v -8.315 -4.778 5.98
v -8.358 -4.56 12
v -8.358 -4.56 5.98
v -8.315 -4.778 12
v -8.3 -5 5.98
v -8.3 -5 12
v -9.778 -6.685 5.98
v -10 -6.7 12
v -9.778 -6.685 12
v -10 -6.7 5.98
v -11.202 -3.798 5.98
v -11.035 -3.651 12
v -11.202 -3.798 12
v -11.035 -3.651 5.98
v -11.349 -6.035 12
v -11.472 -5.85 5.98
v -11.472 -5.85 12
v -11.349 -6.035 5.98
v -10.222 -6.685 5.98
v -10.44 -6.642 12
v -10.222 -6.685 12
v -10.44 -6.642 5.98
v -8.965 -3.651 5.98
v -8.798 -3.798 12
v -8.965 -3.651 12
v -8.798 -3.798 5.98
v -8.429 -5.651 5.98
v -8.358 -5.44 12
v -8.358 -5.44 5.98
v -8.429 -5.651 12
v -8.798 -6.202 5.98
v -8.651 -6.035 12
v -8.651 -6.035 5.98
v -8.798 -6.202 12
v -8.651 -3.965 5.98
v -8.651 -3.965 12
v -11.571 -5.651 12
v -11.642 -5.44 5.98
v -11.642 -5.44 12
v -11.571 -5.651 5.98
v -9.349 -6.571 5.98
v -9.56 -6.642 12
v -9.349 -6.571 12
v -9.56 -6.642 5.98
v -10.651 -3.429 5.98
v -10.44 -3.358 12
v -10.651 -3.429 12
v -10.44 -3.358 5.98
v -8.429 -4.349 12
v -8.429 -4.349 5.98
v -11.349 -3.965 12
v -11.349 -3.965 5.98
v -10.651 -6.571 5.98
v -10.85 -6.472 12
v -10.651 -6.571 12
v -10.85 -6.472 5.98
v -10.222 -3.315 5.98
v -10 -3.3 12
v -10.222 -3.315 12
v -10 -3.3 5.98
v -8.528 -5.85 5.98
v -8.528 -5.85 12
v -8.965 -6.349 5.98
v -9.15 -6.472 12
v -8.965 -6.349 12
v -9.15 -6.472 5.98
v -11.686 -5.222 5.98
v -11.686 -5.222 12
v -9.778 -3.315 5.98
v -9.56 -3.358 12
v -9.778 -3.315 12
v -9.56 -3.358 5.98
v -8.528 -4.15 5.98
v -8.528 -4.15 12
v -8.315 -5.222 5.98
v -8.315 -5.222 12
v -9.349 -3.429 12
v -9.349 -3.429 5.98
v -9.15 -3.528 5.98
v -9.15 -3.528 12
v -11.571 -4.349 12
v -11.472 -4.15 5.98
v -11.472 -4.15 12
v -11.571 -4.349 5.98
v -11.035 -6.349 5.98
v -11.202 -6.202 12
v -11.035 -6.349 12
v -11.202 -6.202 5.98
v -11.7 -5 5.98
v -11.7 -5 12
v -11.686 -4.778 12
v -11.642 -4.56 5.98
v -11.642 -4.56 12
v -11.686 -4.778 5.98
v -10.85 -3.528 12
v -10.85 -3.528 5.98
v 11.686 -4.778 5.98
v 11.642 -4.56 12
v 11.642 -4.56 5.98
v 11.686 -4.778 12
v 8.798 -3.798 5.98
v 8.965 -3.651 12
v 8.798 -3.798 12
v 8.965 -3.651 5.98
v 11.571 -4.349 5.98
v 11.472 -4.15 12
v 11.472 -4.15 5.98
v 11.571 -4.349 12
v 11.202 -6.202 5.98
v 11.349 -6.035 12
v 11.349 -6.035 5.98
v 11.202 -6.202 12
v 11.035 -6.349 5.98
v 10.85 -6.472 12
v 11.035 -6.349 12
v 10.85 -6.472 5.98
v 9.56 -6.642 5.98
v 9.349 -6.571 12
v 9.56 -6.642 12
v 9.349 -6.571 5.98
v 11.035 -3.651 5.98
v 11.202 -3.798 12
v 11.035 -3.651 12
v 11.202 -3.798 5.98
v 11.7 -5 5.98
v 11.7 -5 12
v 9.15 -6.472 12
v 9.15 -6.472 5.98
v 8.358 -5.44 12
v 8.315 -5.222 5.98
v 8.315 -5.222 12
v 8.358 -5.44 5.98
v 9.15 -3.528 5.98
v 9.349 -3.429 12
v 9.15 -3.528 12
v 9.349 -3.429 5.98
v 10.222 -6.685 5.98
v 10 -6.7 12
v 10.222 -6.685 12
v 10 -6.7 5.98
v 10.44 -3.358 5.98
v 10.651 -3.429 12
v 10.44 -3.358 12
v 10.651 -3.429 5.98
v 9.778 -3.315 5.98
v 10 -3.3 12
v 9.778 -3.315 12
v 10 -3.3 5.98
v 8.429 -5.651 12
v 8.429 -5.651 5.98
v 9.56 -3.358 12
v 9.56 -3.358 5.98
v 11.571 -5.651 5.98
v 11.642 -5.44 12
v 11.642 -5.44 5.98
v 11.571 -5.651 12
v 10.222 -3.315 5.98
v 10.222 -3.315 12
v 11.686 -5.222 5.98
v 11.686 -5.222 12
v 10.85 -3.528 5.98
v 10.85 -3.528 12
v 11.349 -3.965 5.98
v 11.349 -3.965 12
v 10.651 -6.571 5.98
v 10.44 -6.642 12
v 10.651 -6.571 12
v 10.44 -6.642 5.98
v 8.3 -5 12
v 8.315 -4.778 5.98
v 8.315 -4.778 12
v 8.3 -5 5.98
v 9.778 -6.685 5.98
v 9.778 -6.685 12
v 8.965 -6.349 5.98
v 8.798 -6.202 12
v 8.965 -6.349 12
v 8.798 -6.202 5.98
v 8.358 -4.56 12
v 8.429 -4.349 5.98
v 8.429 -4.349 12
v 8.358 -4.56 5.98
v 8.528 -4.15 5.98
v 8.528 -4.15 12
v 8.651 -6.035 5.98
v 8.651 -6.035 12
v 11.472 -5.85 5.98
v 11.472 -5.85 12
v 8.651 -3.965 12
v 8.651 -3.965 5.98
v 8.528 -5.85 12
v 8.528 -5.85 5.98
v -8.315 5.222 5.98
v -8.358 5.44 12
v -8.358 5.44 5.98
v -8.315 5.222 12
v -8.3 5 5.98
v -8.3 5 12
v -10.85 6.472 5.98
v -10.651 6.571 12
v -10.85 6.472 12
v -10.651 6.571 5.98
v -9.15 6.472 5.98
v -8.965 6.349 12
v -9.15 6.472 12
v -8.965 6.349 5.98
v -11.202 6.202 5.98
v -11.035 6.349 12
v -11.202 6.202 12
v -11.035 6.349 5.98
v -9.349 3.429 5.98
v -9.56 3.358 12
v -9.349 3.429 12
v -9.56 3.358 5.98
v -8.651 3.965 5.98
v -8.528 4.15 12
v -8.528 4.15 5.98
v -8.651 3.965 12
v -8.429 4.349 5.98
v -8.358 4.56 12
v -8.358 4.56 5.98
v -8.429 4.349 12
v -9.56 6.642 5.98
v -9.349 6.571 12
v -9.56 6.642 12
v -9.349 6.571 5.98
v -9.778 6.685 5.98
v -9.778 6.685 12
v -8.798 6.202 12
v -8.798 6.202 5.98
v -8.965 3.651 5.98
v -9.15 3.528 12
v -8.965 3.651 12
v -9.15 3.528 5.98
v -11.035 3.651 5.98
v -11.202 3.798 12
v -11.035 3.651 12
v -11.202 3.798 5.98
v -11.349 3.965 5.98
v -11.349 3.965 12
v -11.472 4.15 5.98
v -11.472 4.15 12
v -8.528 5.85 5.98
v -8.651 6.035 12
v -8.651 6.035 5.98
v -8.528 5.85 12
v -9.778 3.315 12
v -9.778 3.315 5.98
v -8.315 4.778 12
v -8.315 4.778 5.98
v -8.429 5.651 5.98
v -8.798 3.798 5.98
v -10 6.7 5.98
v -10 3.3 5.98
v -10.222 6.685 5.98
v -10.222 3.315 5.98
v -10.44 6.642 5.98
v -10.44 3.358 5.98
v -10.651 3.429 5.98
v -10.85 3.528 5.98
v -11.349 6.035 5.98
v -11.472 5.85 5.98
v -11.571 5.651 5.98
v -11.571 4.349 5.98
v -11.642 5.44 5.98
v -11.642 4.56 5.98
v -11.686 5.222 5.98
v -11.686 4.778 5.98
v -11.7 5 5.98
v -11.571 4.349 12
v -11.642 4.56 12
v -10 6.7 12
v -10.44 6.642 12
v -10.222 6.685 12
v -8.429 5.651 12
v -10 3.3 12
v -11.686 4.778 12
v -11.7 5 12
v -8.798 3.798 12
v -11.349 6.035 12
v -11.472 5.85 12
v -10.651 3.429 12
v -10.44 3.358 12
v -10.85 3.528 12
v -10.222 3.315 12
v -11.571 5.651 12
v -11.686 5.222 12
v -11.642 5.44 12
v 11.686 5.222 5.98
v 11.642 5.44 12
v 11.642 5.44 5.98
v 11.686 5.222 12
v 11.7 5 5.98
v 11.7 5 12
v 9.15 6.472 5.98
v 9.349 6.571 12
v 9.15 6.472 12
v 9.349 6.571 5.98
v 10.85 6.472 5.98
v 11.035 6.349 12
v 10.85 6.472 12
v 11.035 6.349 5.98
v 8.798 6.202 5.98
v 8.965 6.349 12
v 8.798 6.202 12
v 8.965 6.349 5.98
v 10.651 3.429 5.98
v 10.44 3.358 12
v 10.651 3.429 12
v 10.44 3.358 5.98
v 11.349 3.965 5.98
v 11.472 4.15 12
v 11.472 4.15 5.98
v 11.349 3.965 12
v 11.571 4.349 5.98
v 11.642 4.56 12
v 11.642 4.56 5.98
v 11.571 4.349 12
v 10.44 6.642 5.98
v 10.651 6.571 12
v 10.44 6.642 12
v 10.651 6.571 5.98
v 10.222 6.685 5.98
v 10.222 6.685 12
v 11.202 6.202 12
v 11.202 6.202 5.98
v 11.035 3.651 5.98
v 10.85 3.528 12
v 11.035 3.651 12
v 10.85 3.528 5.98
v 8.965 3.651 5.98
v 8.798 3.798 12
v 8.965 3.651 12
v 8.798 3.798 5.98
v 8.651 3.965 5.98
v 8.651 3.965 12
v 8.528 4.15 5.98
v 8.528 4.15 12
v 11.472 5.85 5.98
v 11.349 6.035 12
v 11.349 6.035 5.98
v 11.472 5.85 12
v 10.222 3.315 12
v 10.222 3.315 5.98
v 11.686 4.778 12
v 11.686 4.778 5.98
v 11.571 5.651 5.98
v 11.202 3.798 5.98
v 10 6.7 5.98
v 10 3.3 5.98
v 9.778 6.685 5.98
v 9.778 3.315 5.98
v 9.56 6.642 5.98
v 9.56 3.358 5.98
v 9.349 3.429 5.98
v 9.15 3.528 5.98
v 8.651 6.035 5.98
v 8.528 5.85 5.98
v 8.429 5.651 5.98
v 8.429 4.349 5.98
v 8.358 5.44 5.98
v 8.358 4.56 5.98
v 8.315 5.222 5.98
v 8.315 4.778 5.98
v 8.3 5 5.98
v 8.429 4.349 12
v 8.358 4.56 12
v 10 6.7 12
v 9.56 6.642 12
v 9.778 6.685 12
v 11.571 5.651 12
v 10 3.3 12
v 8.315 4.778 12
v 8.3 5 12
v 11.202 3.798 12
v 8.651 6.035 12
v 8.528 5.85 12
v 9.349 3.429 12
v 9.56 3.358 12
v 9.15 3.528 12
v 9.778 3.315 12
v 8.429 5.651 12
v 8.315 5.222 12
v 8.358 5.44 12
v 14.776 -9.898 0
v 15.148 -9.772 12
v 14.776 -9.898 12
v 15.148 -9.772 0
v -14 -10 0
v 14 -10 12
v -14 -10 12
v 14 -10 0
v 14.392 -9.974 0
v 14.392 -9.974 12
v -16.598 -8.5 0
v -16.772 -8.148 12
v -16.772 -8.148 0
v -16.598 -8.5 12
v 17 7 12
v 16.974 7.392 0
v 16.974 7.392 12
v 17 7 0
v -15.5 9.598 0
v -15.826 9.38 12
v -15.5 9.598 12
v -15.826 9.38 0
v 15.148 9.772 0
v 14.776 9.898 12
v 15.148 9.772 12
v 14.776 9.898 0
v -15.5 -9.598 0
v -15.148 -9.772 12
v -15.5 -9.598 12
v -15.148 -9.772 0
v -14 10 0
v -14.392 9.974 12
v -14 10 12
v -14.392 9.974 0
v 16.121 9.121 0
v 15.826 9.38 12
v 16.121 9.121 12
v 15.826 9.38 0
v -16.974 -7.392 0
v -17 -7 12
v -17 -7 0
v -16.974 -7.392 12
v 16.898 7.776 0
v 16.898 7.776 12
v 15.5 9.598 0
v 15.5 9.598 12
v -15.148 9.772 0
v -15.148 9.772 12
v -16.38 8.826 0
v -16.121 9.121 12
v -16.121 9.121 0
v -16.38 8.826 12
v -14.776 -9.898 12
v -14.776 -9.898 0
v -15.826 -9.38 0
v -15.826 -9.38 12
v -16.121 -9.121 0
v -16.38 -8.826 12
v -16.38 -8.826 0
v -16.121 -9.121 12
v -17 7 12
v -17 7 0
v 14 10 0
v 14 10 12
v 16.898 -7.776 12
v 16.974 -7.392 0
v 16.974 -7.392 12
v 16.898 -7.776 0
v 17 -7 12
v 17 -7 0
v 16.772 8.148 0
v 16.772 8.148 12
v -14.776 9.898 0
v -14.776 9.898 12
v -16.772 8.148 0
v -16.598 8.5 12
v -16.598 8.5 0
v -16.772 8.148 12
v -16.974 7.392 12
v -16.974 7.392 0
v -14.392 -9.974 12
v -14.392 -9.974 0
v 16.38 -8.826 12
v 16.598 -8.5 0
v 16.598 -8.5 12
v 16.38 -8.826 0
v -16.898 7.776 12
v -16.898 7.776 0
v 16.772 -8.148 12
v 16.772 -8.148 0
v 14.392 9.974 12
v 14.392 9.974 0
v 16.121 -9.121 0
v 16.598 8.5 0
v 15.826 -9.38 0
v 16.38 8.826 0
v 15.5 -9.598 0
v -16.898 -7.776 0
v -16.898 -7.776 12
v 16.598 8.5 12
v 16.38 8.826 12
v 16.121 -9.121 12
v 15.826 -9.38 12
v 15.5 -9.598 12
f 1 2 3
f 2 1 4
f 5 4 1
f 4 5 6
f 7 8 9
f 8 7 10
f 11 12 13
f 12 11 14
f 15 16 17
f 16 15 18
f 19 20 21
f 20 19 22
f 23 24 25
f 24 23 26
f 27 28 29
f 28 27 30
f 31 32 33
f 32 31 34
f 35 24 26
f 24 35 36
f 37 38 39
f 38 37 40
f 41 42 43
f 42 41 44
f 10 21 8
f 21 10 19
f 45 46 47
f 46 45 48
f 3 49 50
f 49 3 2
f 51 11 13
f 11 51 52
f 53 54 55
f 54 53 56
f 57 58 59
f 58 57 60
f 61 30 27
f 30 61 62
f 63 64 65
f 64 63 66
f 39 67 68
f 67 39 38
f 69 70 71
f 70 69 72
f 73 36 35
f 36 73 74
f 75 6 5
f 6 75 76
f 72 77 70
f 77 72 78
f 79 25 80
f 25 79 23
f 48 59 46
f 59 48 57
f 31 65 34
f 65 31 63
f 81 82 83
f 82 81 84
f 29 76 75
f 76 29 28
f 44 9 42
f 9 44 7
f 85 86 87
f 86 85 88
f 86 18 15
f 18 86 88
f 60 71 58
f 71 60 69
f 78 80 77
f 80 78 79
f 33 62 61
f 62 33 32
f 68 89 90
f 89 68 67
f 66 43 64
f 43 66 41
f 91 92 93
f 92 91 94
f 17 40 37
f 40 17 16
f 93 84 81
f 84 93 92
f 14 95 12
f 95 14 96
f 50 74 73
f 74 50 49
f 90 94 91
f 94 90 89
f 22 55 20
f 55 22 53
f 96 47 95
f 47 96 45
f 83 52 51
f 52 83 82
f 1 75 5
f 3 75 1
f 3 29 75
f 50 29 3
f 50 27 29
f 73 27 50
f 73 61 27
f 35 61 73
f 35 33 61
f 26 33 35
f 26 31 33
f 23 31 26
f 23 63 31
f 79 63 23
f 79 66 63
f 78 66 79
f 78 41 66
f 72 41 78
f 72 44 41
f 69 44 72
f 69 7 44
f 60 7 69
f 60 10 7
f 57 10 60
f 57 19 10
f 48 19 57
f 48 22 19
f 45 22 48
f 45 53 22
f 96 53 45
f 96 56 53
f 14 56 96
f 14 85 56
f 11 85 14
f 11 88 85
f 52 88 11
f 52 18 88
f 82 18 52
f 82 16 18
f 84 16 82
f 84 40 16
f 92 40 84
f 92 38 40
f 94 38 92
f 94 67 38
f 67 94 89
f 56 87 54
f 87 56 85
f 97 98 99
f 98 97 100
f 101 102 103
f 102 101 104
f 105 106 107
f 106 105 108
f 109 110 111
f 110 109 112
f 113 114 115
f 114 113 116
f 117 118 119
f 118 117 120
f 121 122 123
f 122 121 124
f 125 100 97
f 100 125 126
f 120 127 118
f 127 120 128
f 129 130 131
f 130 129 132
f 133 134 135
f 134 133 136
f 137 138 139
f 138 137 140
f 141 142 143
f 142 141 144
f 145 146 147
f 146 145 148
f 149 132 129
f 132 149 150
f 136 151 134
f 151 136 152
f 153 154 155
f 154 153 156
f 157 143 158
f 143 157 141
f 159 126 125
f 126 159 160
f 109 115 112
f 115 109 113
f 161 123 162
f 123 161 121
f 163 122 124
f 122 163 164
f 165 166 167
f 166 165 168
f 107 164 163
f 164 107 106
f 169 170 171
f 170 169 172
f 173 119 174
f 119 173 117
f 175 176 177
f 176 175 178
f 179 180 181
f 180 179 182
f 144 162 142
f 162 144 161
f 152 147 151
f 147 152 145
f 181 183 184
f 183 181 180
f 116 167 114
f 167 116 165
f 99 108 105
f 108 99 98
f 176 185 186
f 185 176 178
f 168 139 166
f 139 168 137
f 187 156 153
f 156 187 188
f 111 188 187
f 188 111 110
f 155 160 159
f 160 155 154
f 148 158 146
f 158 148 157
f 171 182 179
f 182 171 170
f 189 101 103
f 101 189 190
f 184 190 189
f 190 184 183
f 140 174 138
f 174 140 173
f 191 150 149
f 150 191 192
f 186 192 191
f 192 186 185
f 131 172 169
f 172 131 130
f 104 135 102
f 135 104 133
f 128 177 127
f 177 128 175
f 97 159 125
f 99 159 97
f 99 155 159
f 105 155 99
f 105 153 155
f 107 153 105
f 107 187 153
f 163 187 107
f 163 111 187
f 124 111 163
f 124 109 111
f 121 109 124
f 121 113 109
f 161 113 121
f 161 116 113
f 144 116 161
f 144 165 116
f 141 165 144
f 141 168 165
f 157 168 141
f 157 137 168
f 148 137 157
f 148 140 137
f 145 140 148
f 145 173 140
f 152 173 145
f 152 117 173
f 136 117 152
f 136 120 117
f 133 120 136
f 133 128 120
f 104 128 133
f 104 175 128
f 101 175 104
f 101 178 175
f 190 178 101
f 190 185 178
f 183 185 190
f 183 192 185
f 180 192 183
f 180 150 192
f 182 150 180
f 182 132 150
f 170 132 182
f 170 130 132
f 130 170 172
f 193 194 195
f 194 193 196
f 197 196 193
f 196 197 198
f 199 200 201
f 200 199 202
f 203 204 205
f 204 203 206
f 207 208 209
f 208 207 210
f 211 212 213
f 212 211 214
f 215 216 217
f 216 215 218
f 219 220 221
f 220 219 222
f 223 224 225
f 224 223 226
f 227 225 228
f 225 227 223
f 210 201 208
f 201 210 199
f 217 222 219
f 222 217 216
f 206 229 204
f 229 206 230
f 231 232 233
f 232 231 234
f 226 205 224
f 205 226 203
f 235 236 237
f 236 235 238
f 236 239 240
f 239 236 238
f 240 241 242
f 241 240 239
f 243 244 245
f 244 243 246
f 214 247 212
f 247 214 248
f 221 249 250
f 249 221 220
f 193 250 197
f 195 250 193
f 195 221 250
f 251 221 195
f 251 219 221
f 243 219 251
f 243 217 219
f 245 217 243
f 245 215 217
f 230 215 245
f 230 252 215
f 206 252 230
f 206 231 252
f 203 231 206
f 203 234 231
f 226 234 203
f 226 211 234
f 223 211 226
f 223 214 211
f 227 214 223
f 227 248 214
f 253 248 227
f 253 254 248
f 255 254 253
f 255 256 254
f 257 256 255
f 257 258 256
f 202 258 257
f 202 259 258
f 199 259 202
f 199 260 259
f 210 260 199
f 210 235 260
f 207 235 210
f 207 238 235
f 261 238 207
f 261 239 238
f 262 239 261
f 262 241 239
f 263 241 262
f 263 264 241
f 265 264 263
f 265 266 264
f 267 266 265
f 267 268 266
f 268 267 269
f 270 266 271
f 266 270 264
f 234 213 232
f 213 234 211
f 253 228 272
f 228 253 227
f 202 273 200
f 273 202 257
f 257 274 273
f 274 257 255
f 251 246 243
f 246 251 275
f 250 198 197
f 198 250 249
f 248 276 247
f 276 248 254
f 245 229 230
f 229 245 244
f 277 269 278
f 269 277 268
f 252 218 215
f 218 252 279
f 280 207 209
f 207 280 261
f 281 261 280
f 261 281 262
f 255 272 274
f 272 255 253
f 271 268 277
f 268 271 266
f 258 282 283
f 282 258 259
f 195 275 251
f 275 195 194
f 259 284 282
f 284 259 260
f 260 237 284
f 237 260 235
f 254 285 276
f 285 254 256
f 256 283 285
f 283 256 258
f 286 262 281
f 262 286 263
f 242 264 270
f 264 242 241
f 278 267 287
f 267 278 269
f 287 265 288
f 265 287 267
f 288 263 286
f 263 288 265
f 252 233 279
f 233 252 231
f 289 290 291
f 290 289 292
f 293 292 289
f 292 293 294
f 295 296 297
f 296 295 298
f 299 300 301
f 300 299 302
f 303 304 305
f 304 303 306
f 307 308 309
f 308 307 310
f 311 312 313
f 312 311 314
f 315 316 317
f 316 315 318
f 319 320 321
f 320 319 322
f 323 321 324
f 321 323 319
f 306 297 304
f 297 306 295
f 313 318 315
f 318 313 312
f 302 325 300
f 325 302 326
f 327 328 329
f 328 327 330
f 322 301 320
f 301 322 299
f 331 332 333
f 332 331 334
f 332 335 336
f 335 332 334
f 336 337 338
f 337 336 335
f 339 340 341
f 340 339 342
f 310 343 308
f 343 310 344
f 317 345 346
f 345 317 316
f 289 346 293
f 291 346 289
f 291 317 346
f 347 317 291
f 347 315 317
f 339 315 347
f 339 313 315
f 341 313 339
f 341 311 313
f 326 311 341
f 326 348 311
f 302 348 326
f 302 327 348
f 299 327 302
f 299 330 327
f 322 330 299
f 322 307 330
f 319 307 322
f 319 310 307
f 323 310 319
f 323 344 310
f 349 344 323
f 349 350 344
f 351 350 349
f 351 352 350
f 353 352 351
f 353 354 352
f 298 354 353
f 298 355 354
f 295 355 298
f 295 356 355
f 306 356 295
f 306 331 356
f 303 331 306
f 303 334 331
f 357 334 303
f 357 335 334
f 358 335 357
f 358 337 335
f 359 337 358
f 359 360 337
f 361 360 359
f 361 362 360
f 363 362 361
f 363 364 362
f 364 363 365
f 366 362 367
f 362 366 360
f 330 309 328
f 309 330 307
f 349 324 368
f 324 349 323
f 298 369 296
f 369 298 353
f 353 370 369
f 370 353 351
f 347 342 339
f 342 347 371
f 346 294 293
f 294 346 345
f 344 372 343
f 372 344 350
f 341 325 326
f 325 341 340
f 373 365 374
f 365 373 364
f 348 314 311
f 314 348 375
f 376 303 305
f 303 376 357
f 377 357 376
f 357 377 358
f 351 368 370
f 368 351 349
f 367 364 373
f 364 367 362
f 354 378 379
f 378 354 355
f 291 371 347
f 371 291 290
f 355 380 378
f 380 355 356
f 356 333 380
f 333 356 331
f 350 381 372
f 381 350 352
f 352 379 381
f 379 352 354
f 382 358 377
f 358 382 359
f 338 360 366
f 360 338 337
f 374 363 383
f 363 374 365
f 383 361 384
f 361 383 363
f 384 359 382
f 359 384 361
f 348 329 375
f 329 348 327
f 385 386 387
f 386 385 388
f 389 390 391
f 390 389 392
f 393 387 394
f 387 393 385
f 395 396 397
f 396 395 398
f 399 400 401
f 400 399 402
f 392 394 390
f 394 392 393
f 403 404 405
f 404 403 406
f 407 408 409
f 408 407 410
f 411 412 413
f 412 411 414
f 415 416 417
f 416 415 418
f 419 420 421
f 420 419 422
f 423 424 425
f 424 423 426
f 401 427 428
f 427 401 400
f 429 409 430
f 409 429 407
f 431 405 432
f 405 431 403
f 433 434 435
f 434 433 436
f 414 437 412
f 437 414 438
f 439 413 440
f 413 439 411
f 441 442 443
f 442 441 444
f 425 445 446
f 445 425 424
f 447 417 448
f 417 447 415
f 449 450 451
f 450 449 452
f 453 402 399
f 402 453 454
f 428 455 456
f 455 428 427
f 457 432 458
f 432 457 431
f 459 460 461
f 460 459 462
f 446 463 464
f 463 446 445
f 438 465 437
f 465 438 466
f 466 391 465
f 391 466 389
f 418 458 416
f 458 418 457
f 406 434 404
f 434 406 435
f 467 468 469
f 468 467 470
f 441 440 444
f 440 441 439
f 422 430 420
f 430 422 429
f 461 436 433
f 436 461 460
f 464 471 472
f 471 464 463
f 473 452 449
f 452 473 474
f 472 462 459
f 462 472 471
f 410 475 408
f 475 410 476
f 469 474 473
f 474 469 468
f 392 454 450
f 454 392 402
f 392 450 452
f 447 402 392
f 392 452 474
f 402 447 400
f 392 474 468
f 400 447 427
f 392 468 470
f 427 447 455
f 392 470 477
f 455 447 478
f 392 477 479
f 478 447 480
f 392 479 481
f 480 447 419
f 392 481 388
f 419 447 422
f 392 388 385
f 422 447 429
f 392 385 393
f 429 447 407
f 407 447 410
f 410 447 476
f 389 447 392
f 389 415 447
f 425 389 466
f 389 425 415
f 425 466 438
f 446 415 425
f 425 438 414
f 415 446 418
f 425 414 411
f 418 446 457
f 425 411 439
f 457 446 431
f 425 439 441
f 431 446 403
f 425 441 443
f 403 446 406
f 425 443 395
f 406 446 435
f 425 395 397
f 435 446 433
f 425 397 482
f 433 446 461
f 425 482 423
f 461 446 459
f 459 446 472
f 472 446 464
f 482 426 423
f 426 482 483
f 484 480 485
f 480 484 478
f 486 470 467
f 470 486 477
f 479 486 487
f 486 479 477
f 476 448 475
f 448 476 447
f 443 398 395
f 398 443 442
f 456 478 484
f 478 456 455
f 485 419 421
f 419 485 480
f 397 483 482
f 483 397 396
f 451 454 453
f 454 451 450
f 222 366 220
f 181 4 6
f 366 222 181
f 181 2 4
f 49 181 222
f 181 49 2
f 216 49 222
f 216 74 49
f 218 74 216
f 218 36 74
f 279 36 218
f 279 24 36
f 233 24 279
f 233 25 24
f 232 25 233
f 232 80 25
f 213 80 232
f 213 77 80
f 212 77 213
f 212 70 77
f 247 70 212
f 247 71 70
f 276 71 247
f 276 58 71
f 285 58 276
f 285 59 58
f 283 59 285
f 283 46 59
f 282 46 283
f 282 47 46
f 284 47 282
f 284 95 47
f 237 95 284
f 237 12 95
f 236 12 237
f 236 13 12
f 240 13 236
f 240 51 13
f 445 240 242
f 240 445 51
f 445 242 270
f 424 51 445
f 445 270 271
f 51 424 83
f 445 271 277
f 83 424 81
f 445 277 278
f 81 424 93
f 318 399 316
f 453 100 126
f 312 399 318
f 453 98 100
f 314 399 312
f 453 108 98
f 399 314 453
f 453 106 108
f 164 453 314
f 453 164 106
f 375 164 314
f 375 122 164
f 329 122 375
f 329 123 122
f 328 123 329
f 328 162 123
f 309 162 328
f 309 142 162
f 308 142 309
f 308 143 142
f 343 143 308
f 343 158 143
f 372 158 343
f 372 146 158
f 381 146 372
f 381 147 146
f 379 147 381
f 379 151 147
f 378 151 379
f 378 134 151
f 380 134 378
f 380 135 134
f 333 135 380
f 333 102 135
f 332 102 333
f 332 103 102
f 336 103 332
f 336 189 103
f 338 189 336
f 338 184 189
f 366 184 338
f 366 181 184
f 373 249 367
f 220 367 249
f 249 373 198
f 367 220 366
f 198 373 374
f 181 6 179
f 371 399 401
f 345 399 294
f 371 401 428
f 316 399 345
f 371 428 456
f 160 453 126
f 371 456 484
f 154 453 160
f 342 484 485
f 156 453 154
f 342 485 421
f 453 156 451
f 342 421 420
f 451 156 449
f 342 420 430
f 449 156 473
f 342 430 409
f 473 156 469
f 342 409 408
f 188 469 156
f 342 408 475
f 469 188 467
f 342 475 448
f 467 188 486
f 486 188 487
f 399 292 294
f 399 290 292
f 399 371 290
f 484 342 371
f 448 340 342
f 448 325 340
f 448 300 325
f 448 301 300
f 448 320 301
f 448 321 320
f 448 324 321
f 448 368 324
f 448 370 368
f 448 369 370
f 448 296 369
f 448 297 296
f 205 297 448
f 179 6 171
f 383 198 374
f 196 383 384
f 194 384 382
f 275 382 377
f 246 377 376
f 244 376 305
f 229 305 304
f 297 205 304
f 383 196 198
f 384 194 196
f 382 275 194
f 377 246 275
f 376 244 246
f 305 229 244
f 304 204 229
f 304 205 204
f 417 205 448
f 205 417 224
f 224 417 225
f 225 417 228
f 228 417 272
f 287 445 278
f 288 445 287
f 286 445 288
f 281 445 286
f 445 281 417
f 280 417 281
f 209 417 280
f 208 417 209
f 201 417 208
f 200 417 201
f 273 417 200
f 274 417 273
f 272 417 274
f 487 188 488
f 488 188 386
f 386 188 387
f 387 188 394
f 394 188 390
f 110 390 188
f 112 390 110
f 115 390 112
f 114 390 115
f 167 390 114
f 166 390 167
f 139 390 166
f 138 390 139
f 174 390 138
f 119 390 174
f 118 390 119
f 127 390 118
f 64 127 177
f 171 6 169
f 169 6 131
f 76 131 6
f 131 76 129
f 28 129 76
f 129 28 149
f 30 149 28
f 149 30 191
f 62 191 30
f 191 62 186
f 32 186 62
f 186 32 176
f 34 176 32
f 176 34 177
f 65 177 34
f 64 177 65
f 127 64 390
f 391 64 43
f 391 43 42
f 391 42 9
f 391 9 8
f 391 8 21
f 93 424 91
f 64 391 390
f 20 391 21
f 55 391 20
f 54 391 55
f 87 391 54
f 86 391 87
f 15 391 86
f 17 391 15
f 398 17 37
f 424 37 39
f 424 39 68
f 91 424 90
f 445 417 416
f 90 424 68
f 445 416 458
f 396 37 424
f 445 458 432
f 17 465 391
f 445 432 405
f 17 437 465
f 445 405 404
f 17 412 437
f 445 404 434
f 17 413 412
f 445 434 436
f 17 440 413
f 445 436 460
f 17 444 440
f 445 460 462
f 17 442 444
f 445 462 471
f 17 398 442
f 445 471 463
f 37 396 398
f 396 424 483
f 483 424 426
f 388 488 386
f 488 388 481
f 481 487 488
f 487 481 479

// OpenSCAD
PART = "upper_hinge_block_right";
include <../fielddeck.scad>;
